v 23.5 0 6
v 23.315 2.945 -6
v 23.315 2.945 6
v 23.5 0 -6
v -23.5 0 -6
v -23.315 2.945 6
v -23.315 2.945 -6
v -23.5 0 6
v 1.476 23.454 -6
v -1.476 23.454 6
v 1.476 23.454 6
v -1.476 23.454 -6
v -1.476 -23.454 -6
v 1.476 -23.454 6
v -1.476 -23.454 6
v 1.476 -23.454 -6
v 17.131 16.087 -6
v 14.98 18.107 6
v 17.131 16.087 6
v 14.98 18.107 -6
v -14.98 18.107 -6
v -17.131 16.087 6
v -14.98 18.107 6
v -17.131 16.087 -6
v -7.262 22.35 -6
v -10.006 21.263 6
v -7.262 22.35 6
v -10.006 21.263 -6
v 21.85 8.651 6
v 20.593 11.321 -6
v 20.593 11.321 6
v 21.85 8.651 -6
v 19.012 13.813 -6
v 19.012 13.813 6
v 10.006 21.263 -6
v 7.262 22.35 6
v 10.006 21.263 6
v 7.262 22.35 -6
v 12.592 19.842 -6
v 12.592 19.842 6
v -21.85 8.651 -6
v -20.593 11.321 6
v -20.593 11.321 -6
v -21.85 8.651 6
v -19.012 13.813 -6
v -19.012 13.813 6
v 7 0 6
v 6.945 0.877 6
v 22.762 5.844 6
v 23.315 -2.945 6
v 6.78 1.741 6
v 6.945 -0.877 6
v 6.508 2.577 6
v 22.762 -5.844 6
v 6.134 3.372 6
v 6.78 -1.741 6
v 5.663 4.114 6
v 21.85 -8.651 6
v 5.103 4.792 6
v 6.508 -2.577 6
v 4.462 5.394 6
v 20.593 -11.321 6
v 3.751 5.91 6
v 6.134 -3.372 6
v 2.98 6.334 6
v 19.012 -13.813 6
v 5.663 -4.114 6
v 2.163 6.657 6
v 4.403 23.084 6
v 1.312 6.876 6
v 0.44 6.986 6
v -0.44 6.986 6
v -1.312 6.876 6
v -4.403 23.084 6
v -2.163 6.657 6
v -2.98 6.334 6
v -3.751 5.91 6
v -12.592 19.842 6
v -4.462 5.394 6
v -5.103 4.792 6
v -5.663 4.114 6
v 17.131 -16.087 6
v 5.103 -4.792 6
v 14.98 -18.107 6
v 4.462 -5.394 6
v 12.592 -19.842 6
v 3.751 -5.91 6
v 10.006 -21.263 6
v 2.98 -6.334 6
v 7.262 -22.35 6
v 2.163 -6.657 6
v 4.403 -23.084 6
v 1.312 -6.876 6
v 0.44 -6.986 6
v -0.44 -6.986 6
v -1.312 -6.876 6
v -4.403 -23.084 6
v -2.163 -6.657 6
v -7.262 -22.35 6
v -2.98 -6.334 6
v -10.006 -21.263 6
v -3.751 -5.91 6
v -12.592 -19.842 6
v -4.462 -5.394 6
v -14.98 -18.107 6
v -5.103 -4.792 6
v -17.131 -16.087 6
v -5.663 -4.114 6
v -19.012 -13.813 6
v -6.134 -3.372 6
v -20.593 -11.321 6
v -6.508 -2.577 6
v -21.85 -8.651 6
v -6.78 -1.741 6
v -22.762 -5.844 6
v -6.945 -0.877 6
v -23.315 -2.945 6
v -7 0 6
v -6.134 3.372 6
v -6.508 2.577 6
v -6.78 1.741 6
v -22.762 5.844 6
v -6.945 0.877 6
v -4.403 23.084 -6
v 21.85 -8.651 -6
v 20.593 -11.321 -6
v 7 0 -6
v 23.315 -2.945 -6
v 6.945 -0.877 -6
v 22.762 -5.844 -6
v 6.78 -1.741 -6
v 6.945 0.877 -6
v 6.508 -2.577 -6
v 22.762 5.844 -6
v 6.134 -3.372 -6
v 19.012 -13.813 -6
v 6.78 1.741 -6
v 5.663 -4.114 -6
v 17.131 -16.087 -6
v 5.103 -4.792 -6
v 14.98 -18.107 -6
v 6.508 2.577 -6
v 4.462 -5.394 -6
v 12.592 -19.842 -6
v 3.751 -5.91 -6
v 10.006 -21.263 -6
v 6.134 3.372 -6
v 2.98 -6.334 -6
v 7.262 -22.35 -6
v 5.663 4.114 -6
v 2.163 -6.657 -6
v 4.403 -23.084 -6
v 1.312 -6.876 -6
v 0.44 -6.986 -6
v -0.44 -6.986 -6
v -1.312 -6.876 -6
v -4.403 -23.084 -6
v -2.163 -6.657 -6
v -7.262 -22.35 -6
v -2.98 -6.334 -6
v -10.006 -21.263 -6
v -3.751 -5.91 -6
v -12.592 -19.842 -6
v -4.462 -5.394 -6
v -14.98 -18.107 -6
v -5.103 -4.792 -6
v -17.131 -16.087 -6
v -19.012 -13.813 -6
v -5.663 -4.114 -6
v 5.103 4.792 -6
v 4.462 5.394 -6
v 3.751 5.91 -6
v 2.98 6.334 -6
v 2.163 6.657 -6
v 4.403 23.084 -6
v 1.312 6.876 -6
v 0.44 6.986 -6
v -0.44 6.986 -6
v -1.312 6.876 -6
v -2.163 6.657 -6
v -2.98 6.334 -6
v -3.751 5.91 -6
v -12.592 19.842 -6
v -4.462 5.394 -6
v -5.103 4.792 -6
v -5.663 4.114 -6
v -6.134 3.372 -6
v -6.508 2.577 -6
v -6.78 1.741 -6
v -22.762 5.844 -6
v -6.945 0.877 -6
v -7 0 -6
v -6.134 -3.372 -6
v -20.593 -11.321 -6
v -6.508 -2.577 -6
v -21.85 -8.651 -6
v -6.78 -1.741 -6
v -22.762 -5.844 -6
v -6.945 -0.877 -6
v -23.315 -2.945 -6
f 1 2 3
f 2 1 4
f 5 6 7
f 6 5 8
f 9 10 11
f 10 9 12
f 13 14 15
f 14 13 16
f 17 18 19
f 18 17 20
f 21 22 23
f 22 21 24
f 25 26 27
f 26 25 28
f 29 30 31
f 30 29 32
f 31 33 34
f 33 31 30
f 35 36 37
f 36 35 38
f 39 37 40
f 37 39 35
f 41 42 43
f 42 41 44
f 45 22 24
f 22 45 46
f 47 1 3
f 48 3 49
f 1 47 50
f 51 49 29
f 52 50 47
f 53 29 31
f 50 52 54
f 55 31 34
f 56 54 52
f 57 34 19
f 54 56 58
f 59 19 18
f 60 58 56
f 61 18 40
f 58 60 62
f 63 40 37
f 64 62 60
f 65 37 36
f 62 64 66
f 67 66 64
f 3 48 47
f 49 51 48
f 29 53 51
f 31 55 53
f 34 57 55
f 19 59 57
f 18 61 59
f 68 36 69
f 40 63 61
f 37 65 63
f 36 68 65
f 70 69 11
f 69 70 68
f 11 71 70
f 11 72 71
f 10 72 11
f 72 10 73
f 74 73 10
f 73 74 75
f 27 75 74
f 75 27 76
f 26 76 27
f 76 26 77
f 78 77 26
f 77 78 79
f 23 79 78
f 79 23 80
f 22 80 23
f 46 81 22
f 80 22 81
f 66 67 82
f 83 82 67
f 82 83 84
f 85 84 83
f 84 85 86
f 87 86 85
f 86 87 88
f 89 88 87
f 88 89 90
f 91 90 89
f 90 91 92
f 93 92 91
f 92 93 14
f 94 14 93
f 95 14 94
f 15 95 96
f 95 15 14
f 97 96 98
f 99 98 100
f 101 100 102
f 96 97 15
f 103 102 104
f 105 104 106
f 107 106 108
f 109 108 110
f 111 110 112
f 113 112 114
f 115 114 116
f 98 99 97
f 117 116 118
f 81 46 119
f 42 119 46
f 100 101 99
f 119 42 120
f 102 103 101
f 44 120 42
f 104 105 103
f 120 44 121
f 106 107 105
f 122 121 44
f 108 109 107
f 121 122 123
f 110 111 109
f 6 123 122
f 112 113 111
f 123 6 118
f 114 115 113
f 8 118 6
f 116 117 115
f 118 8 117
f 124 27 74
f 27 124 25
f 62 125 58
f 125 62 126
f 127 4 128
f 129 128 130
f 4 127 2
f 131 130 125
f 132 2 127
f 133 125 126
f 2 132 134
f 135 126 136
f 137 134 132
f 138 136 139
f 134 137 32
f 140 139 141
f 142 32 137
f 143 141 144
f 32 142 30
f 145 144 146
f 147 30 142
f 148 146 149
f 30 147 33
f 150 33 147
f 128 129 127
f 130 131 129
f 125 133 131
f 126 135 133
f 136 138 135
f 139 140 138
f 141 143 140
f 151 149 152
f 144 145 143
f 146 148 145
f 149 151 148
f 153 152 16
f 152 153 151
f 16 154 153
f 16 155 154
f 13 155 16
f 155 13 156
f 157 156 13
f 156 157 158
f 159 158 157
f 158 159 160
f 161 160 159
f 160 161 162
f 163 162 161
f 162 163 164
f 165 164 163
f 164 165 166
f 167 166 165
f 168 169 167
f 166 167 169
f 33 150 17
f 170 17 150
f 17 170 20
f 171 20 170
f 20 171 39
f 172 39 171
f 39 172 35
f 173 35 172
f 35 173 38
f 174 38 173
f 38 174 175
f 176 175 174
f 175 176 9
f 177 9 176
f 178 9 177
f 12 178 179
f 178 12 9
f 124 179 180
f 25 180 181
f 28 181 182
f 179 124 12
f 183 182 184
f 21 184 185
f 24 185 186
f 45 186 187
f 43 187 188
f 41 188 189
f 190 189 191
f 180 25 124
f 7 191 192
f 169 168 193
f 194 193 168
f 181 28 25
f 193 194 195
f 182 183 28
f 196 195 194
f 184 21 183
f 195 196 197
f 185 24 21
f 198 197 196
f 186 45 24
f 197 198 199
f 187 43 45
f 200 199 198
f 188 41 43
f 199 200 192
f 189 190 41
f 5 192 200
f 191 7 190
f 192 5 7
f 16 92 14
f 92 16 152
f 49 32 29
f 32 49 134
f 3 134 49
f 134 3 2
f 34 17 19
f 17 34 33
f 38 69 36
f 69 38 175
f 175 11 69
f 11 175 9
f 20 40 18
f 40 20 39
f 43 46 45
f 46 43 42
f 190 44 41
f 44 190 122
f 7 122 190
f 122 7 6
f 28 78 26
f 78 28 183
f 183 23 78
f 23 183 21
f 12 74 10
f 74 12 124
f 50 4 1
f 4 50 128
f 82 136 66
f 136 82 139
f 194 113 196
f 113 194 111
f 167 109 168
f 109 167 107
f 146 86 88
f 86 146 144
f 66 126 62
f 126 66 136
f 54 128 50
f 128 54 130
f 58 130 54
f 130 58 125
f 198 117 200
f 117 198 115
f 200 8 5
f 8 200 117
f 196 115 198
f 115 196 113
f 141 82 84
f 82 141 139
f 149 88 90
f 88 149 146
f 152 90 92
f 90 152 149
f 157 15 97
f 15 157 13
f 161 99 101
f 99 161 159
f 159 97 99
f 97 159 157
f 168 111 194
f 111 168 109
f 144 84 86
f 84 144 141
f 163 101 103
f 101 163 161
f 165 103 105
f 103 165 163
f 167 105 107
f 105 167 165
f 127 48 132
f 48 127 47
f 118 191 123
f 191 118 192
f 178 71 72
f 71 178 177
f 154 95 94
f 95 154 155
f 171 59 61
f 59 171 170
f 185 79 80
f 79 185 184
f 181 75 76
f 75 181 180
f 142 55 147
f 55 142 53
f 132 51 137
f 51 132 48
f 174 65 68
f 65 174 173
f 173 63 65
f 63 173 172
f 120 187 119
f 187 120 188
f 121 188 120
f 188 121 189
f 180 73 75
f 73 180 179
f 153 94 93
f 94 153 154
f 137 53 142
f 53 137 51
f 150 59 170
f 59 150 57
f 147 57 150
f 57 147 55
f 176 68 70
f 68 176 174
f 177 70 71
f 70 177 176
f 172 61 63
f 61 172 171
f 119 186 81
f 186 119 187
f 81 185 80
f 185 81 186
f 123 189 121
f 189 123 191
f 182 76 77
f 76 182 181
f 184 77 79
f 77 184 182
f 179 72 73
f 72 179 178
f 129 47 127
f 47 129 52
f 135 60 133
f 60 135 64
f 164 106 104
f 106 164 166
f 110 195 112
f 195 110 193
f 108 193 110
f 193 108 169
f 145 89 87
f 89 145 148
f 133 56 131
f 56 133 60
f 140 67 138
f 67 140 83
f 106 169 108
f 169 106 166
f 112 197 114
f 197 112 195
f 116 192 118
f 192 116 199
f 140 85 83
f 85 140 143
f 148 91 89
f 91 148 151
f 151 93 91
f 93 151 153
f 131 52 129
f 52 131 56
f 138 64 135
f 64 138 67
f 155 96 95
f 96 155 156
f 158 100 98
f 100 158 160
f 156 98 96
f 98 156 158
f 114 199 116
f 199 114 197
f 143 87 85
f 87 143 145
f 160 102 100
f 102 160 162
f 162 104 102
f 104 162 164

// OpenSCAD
$fn = 50;


difference() {
	union() {
		translate(v = [0, 0, -6.0000000000]) {
			cylinder(h = 12, r = 23.5000000000);
		}
	}
	union() {
		translate(v = [0, 0, -100.0000000000]) {
			cylinder(h = 200, r = 7);
		}
	}
}
